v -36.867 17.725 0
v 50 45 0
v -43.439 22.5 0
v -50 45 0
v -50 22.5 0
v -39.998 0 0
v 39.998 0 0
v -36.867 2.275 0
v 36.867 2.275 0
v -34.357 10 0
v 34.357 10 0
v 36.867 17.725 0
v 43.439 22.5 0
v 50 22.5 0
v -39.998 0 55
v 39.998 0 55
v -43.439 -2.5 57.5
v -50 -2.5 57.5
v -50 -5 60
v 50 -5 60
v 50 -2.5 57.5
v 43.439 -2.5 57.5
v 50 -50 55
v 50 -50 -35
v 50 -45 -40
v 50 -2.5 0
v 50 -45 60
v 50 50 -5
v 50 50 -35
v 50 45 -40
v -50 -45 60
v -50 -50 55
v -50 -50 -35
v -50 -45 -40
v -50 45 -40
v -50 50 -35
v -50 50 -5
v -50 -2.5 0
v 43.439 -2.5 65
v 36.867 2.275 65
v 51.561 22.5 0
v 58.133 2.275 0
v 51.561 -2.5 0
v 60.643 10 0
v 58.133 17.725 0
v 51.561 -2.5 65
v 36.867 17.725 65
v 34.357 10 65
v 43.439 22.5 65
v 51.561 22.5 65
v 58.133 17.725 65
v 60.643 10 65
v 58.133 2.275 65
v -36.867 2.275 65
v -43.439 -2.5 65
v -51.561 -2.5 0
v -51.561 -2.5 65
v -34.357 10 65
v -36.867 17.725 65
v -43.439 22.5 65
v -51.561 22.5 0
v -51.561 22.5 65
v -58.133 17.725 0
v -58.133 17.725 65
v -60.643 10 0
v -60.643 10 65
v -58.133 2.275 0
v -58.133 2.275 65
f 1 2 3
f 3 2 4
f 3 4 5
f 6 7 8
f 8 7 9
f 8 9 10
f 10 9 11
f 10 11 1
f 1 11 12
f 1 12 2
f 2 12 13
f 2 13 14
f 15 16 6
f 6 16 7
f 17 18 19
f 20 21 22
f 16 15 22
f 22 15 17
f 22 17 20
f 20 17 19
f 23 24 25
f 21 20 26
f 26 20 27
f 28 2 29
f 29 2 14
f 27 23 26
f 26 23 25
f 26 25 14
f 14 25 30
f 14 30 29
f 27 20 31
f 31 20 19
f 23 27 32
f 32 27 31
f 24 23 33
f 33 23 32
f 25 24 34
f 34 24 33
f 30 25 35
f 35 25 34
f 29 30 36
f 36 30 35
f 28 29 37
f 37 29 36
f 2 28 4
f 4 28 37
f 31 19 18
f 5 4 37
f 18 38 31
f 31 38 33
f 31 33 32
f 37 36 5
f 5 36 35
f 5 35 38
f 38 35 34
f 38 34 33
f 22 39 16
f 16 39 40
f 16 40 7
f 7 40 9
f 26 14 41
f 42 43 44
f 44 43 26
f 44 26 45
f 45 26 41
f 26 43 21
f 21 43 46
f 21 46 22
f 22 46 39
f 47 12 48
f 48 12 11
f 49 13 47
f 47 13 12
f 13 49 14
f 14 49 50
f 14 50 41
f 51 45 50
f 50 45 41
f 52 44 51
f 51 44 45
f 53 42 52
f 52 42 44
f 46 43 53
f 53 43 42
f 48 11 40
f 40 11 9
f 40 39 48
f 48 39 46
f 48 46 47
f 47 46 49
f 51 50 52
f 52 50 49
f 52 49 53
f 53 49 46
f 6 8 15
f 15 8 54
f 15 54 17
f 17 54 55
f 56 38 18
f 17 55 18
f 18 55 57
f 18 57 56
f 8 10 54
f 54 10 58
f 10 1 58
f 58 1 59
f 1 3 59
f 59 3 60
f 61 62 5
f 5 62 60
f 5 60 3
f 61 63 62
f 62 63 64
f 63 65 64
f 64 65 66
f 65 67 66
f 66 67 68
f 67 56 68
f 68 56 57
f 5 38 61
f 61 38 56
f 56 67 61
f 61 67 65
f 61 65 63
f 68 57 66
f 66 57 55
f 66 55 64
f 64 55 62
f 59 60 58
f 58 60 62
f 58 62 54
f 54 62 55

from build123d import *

# Parameters (mm, degrees)
BOSS_EXTRUDE1_DEPTH = 50
BOSS_EXTRUDE3_DEPTH = 65


with BuildPart() as part:
    # Sketch1 → Boss-Extrude1 (new body, symmetric)
    with BuildSketch(Plane(origin=(0, 0, 0), x_dir=(0, 0, -1), z_dir=(1, 0, 0))):
        Polygon((0, 0), (-55, 0), (-60, -5), (-60, -45), (-55, -50), (35, -50), (40, -45), (40, 45), (35, 50), (5, 50), (0, 45), align=None)
    extrude(amount=BOSS_EXTRUDE1_DEPTH, both=True)

    # Sketch2 → Boss-Extrude3 (add)
    with BuildSketch(Plane.XY):
        Polygon((60.643277803, 10), (58.133135104, 17.725424859), (51.561496203, 22.5), (43.438503797, 22.5), (36.866864896, 17.725424859), (34.356722197, 10), (36.866864896, 2.274575141), (43.438503797, -2.5), (51.561496203, -2.5), (58.133135104, 2.274575141), align=None)
    boss_extrude3 = extrude(amount=BOSS_EXTRUDE3_DEPTH)

    # Mirror1: Boss-Extrude3 across plane
    add(boss_extrude3.mirror(Plane(origin=(0, 0, 0), x_dir=(0, 0, 1), z_dir=(1, 0, 0))))


solid = part.part
